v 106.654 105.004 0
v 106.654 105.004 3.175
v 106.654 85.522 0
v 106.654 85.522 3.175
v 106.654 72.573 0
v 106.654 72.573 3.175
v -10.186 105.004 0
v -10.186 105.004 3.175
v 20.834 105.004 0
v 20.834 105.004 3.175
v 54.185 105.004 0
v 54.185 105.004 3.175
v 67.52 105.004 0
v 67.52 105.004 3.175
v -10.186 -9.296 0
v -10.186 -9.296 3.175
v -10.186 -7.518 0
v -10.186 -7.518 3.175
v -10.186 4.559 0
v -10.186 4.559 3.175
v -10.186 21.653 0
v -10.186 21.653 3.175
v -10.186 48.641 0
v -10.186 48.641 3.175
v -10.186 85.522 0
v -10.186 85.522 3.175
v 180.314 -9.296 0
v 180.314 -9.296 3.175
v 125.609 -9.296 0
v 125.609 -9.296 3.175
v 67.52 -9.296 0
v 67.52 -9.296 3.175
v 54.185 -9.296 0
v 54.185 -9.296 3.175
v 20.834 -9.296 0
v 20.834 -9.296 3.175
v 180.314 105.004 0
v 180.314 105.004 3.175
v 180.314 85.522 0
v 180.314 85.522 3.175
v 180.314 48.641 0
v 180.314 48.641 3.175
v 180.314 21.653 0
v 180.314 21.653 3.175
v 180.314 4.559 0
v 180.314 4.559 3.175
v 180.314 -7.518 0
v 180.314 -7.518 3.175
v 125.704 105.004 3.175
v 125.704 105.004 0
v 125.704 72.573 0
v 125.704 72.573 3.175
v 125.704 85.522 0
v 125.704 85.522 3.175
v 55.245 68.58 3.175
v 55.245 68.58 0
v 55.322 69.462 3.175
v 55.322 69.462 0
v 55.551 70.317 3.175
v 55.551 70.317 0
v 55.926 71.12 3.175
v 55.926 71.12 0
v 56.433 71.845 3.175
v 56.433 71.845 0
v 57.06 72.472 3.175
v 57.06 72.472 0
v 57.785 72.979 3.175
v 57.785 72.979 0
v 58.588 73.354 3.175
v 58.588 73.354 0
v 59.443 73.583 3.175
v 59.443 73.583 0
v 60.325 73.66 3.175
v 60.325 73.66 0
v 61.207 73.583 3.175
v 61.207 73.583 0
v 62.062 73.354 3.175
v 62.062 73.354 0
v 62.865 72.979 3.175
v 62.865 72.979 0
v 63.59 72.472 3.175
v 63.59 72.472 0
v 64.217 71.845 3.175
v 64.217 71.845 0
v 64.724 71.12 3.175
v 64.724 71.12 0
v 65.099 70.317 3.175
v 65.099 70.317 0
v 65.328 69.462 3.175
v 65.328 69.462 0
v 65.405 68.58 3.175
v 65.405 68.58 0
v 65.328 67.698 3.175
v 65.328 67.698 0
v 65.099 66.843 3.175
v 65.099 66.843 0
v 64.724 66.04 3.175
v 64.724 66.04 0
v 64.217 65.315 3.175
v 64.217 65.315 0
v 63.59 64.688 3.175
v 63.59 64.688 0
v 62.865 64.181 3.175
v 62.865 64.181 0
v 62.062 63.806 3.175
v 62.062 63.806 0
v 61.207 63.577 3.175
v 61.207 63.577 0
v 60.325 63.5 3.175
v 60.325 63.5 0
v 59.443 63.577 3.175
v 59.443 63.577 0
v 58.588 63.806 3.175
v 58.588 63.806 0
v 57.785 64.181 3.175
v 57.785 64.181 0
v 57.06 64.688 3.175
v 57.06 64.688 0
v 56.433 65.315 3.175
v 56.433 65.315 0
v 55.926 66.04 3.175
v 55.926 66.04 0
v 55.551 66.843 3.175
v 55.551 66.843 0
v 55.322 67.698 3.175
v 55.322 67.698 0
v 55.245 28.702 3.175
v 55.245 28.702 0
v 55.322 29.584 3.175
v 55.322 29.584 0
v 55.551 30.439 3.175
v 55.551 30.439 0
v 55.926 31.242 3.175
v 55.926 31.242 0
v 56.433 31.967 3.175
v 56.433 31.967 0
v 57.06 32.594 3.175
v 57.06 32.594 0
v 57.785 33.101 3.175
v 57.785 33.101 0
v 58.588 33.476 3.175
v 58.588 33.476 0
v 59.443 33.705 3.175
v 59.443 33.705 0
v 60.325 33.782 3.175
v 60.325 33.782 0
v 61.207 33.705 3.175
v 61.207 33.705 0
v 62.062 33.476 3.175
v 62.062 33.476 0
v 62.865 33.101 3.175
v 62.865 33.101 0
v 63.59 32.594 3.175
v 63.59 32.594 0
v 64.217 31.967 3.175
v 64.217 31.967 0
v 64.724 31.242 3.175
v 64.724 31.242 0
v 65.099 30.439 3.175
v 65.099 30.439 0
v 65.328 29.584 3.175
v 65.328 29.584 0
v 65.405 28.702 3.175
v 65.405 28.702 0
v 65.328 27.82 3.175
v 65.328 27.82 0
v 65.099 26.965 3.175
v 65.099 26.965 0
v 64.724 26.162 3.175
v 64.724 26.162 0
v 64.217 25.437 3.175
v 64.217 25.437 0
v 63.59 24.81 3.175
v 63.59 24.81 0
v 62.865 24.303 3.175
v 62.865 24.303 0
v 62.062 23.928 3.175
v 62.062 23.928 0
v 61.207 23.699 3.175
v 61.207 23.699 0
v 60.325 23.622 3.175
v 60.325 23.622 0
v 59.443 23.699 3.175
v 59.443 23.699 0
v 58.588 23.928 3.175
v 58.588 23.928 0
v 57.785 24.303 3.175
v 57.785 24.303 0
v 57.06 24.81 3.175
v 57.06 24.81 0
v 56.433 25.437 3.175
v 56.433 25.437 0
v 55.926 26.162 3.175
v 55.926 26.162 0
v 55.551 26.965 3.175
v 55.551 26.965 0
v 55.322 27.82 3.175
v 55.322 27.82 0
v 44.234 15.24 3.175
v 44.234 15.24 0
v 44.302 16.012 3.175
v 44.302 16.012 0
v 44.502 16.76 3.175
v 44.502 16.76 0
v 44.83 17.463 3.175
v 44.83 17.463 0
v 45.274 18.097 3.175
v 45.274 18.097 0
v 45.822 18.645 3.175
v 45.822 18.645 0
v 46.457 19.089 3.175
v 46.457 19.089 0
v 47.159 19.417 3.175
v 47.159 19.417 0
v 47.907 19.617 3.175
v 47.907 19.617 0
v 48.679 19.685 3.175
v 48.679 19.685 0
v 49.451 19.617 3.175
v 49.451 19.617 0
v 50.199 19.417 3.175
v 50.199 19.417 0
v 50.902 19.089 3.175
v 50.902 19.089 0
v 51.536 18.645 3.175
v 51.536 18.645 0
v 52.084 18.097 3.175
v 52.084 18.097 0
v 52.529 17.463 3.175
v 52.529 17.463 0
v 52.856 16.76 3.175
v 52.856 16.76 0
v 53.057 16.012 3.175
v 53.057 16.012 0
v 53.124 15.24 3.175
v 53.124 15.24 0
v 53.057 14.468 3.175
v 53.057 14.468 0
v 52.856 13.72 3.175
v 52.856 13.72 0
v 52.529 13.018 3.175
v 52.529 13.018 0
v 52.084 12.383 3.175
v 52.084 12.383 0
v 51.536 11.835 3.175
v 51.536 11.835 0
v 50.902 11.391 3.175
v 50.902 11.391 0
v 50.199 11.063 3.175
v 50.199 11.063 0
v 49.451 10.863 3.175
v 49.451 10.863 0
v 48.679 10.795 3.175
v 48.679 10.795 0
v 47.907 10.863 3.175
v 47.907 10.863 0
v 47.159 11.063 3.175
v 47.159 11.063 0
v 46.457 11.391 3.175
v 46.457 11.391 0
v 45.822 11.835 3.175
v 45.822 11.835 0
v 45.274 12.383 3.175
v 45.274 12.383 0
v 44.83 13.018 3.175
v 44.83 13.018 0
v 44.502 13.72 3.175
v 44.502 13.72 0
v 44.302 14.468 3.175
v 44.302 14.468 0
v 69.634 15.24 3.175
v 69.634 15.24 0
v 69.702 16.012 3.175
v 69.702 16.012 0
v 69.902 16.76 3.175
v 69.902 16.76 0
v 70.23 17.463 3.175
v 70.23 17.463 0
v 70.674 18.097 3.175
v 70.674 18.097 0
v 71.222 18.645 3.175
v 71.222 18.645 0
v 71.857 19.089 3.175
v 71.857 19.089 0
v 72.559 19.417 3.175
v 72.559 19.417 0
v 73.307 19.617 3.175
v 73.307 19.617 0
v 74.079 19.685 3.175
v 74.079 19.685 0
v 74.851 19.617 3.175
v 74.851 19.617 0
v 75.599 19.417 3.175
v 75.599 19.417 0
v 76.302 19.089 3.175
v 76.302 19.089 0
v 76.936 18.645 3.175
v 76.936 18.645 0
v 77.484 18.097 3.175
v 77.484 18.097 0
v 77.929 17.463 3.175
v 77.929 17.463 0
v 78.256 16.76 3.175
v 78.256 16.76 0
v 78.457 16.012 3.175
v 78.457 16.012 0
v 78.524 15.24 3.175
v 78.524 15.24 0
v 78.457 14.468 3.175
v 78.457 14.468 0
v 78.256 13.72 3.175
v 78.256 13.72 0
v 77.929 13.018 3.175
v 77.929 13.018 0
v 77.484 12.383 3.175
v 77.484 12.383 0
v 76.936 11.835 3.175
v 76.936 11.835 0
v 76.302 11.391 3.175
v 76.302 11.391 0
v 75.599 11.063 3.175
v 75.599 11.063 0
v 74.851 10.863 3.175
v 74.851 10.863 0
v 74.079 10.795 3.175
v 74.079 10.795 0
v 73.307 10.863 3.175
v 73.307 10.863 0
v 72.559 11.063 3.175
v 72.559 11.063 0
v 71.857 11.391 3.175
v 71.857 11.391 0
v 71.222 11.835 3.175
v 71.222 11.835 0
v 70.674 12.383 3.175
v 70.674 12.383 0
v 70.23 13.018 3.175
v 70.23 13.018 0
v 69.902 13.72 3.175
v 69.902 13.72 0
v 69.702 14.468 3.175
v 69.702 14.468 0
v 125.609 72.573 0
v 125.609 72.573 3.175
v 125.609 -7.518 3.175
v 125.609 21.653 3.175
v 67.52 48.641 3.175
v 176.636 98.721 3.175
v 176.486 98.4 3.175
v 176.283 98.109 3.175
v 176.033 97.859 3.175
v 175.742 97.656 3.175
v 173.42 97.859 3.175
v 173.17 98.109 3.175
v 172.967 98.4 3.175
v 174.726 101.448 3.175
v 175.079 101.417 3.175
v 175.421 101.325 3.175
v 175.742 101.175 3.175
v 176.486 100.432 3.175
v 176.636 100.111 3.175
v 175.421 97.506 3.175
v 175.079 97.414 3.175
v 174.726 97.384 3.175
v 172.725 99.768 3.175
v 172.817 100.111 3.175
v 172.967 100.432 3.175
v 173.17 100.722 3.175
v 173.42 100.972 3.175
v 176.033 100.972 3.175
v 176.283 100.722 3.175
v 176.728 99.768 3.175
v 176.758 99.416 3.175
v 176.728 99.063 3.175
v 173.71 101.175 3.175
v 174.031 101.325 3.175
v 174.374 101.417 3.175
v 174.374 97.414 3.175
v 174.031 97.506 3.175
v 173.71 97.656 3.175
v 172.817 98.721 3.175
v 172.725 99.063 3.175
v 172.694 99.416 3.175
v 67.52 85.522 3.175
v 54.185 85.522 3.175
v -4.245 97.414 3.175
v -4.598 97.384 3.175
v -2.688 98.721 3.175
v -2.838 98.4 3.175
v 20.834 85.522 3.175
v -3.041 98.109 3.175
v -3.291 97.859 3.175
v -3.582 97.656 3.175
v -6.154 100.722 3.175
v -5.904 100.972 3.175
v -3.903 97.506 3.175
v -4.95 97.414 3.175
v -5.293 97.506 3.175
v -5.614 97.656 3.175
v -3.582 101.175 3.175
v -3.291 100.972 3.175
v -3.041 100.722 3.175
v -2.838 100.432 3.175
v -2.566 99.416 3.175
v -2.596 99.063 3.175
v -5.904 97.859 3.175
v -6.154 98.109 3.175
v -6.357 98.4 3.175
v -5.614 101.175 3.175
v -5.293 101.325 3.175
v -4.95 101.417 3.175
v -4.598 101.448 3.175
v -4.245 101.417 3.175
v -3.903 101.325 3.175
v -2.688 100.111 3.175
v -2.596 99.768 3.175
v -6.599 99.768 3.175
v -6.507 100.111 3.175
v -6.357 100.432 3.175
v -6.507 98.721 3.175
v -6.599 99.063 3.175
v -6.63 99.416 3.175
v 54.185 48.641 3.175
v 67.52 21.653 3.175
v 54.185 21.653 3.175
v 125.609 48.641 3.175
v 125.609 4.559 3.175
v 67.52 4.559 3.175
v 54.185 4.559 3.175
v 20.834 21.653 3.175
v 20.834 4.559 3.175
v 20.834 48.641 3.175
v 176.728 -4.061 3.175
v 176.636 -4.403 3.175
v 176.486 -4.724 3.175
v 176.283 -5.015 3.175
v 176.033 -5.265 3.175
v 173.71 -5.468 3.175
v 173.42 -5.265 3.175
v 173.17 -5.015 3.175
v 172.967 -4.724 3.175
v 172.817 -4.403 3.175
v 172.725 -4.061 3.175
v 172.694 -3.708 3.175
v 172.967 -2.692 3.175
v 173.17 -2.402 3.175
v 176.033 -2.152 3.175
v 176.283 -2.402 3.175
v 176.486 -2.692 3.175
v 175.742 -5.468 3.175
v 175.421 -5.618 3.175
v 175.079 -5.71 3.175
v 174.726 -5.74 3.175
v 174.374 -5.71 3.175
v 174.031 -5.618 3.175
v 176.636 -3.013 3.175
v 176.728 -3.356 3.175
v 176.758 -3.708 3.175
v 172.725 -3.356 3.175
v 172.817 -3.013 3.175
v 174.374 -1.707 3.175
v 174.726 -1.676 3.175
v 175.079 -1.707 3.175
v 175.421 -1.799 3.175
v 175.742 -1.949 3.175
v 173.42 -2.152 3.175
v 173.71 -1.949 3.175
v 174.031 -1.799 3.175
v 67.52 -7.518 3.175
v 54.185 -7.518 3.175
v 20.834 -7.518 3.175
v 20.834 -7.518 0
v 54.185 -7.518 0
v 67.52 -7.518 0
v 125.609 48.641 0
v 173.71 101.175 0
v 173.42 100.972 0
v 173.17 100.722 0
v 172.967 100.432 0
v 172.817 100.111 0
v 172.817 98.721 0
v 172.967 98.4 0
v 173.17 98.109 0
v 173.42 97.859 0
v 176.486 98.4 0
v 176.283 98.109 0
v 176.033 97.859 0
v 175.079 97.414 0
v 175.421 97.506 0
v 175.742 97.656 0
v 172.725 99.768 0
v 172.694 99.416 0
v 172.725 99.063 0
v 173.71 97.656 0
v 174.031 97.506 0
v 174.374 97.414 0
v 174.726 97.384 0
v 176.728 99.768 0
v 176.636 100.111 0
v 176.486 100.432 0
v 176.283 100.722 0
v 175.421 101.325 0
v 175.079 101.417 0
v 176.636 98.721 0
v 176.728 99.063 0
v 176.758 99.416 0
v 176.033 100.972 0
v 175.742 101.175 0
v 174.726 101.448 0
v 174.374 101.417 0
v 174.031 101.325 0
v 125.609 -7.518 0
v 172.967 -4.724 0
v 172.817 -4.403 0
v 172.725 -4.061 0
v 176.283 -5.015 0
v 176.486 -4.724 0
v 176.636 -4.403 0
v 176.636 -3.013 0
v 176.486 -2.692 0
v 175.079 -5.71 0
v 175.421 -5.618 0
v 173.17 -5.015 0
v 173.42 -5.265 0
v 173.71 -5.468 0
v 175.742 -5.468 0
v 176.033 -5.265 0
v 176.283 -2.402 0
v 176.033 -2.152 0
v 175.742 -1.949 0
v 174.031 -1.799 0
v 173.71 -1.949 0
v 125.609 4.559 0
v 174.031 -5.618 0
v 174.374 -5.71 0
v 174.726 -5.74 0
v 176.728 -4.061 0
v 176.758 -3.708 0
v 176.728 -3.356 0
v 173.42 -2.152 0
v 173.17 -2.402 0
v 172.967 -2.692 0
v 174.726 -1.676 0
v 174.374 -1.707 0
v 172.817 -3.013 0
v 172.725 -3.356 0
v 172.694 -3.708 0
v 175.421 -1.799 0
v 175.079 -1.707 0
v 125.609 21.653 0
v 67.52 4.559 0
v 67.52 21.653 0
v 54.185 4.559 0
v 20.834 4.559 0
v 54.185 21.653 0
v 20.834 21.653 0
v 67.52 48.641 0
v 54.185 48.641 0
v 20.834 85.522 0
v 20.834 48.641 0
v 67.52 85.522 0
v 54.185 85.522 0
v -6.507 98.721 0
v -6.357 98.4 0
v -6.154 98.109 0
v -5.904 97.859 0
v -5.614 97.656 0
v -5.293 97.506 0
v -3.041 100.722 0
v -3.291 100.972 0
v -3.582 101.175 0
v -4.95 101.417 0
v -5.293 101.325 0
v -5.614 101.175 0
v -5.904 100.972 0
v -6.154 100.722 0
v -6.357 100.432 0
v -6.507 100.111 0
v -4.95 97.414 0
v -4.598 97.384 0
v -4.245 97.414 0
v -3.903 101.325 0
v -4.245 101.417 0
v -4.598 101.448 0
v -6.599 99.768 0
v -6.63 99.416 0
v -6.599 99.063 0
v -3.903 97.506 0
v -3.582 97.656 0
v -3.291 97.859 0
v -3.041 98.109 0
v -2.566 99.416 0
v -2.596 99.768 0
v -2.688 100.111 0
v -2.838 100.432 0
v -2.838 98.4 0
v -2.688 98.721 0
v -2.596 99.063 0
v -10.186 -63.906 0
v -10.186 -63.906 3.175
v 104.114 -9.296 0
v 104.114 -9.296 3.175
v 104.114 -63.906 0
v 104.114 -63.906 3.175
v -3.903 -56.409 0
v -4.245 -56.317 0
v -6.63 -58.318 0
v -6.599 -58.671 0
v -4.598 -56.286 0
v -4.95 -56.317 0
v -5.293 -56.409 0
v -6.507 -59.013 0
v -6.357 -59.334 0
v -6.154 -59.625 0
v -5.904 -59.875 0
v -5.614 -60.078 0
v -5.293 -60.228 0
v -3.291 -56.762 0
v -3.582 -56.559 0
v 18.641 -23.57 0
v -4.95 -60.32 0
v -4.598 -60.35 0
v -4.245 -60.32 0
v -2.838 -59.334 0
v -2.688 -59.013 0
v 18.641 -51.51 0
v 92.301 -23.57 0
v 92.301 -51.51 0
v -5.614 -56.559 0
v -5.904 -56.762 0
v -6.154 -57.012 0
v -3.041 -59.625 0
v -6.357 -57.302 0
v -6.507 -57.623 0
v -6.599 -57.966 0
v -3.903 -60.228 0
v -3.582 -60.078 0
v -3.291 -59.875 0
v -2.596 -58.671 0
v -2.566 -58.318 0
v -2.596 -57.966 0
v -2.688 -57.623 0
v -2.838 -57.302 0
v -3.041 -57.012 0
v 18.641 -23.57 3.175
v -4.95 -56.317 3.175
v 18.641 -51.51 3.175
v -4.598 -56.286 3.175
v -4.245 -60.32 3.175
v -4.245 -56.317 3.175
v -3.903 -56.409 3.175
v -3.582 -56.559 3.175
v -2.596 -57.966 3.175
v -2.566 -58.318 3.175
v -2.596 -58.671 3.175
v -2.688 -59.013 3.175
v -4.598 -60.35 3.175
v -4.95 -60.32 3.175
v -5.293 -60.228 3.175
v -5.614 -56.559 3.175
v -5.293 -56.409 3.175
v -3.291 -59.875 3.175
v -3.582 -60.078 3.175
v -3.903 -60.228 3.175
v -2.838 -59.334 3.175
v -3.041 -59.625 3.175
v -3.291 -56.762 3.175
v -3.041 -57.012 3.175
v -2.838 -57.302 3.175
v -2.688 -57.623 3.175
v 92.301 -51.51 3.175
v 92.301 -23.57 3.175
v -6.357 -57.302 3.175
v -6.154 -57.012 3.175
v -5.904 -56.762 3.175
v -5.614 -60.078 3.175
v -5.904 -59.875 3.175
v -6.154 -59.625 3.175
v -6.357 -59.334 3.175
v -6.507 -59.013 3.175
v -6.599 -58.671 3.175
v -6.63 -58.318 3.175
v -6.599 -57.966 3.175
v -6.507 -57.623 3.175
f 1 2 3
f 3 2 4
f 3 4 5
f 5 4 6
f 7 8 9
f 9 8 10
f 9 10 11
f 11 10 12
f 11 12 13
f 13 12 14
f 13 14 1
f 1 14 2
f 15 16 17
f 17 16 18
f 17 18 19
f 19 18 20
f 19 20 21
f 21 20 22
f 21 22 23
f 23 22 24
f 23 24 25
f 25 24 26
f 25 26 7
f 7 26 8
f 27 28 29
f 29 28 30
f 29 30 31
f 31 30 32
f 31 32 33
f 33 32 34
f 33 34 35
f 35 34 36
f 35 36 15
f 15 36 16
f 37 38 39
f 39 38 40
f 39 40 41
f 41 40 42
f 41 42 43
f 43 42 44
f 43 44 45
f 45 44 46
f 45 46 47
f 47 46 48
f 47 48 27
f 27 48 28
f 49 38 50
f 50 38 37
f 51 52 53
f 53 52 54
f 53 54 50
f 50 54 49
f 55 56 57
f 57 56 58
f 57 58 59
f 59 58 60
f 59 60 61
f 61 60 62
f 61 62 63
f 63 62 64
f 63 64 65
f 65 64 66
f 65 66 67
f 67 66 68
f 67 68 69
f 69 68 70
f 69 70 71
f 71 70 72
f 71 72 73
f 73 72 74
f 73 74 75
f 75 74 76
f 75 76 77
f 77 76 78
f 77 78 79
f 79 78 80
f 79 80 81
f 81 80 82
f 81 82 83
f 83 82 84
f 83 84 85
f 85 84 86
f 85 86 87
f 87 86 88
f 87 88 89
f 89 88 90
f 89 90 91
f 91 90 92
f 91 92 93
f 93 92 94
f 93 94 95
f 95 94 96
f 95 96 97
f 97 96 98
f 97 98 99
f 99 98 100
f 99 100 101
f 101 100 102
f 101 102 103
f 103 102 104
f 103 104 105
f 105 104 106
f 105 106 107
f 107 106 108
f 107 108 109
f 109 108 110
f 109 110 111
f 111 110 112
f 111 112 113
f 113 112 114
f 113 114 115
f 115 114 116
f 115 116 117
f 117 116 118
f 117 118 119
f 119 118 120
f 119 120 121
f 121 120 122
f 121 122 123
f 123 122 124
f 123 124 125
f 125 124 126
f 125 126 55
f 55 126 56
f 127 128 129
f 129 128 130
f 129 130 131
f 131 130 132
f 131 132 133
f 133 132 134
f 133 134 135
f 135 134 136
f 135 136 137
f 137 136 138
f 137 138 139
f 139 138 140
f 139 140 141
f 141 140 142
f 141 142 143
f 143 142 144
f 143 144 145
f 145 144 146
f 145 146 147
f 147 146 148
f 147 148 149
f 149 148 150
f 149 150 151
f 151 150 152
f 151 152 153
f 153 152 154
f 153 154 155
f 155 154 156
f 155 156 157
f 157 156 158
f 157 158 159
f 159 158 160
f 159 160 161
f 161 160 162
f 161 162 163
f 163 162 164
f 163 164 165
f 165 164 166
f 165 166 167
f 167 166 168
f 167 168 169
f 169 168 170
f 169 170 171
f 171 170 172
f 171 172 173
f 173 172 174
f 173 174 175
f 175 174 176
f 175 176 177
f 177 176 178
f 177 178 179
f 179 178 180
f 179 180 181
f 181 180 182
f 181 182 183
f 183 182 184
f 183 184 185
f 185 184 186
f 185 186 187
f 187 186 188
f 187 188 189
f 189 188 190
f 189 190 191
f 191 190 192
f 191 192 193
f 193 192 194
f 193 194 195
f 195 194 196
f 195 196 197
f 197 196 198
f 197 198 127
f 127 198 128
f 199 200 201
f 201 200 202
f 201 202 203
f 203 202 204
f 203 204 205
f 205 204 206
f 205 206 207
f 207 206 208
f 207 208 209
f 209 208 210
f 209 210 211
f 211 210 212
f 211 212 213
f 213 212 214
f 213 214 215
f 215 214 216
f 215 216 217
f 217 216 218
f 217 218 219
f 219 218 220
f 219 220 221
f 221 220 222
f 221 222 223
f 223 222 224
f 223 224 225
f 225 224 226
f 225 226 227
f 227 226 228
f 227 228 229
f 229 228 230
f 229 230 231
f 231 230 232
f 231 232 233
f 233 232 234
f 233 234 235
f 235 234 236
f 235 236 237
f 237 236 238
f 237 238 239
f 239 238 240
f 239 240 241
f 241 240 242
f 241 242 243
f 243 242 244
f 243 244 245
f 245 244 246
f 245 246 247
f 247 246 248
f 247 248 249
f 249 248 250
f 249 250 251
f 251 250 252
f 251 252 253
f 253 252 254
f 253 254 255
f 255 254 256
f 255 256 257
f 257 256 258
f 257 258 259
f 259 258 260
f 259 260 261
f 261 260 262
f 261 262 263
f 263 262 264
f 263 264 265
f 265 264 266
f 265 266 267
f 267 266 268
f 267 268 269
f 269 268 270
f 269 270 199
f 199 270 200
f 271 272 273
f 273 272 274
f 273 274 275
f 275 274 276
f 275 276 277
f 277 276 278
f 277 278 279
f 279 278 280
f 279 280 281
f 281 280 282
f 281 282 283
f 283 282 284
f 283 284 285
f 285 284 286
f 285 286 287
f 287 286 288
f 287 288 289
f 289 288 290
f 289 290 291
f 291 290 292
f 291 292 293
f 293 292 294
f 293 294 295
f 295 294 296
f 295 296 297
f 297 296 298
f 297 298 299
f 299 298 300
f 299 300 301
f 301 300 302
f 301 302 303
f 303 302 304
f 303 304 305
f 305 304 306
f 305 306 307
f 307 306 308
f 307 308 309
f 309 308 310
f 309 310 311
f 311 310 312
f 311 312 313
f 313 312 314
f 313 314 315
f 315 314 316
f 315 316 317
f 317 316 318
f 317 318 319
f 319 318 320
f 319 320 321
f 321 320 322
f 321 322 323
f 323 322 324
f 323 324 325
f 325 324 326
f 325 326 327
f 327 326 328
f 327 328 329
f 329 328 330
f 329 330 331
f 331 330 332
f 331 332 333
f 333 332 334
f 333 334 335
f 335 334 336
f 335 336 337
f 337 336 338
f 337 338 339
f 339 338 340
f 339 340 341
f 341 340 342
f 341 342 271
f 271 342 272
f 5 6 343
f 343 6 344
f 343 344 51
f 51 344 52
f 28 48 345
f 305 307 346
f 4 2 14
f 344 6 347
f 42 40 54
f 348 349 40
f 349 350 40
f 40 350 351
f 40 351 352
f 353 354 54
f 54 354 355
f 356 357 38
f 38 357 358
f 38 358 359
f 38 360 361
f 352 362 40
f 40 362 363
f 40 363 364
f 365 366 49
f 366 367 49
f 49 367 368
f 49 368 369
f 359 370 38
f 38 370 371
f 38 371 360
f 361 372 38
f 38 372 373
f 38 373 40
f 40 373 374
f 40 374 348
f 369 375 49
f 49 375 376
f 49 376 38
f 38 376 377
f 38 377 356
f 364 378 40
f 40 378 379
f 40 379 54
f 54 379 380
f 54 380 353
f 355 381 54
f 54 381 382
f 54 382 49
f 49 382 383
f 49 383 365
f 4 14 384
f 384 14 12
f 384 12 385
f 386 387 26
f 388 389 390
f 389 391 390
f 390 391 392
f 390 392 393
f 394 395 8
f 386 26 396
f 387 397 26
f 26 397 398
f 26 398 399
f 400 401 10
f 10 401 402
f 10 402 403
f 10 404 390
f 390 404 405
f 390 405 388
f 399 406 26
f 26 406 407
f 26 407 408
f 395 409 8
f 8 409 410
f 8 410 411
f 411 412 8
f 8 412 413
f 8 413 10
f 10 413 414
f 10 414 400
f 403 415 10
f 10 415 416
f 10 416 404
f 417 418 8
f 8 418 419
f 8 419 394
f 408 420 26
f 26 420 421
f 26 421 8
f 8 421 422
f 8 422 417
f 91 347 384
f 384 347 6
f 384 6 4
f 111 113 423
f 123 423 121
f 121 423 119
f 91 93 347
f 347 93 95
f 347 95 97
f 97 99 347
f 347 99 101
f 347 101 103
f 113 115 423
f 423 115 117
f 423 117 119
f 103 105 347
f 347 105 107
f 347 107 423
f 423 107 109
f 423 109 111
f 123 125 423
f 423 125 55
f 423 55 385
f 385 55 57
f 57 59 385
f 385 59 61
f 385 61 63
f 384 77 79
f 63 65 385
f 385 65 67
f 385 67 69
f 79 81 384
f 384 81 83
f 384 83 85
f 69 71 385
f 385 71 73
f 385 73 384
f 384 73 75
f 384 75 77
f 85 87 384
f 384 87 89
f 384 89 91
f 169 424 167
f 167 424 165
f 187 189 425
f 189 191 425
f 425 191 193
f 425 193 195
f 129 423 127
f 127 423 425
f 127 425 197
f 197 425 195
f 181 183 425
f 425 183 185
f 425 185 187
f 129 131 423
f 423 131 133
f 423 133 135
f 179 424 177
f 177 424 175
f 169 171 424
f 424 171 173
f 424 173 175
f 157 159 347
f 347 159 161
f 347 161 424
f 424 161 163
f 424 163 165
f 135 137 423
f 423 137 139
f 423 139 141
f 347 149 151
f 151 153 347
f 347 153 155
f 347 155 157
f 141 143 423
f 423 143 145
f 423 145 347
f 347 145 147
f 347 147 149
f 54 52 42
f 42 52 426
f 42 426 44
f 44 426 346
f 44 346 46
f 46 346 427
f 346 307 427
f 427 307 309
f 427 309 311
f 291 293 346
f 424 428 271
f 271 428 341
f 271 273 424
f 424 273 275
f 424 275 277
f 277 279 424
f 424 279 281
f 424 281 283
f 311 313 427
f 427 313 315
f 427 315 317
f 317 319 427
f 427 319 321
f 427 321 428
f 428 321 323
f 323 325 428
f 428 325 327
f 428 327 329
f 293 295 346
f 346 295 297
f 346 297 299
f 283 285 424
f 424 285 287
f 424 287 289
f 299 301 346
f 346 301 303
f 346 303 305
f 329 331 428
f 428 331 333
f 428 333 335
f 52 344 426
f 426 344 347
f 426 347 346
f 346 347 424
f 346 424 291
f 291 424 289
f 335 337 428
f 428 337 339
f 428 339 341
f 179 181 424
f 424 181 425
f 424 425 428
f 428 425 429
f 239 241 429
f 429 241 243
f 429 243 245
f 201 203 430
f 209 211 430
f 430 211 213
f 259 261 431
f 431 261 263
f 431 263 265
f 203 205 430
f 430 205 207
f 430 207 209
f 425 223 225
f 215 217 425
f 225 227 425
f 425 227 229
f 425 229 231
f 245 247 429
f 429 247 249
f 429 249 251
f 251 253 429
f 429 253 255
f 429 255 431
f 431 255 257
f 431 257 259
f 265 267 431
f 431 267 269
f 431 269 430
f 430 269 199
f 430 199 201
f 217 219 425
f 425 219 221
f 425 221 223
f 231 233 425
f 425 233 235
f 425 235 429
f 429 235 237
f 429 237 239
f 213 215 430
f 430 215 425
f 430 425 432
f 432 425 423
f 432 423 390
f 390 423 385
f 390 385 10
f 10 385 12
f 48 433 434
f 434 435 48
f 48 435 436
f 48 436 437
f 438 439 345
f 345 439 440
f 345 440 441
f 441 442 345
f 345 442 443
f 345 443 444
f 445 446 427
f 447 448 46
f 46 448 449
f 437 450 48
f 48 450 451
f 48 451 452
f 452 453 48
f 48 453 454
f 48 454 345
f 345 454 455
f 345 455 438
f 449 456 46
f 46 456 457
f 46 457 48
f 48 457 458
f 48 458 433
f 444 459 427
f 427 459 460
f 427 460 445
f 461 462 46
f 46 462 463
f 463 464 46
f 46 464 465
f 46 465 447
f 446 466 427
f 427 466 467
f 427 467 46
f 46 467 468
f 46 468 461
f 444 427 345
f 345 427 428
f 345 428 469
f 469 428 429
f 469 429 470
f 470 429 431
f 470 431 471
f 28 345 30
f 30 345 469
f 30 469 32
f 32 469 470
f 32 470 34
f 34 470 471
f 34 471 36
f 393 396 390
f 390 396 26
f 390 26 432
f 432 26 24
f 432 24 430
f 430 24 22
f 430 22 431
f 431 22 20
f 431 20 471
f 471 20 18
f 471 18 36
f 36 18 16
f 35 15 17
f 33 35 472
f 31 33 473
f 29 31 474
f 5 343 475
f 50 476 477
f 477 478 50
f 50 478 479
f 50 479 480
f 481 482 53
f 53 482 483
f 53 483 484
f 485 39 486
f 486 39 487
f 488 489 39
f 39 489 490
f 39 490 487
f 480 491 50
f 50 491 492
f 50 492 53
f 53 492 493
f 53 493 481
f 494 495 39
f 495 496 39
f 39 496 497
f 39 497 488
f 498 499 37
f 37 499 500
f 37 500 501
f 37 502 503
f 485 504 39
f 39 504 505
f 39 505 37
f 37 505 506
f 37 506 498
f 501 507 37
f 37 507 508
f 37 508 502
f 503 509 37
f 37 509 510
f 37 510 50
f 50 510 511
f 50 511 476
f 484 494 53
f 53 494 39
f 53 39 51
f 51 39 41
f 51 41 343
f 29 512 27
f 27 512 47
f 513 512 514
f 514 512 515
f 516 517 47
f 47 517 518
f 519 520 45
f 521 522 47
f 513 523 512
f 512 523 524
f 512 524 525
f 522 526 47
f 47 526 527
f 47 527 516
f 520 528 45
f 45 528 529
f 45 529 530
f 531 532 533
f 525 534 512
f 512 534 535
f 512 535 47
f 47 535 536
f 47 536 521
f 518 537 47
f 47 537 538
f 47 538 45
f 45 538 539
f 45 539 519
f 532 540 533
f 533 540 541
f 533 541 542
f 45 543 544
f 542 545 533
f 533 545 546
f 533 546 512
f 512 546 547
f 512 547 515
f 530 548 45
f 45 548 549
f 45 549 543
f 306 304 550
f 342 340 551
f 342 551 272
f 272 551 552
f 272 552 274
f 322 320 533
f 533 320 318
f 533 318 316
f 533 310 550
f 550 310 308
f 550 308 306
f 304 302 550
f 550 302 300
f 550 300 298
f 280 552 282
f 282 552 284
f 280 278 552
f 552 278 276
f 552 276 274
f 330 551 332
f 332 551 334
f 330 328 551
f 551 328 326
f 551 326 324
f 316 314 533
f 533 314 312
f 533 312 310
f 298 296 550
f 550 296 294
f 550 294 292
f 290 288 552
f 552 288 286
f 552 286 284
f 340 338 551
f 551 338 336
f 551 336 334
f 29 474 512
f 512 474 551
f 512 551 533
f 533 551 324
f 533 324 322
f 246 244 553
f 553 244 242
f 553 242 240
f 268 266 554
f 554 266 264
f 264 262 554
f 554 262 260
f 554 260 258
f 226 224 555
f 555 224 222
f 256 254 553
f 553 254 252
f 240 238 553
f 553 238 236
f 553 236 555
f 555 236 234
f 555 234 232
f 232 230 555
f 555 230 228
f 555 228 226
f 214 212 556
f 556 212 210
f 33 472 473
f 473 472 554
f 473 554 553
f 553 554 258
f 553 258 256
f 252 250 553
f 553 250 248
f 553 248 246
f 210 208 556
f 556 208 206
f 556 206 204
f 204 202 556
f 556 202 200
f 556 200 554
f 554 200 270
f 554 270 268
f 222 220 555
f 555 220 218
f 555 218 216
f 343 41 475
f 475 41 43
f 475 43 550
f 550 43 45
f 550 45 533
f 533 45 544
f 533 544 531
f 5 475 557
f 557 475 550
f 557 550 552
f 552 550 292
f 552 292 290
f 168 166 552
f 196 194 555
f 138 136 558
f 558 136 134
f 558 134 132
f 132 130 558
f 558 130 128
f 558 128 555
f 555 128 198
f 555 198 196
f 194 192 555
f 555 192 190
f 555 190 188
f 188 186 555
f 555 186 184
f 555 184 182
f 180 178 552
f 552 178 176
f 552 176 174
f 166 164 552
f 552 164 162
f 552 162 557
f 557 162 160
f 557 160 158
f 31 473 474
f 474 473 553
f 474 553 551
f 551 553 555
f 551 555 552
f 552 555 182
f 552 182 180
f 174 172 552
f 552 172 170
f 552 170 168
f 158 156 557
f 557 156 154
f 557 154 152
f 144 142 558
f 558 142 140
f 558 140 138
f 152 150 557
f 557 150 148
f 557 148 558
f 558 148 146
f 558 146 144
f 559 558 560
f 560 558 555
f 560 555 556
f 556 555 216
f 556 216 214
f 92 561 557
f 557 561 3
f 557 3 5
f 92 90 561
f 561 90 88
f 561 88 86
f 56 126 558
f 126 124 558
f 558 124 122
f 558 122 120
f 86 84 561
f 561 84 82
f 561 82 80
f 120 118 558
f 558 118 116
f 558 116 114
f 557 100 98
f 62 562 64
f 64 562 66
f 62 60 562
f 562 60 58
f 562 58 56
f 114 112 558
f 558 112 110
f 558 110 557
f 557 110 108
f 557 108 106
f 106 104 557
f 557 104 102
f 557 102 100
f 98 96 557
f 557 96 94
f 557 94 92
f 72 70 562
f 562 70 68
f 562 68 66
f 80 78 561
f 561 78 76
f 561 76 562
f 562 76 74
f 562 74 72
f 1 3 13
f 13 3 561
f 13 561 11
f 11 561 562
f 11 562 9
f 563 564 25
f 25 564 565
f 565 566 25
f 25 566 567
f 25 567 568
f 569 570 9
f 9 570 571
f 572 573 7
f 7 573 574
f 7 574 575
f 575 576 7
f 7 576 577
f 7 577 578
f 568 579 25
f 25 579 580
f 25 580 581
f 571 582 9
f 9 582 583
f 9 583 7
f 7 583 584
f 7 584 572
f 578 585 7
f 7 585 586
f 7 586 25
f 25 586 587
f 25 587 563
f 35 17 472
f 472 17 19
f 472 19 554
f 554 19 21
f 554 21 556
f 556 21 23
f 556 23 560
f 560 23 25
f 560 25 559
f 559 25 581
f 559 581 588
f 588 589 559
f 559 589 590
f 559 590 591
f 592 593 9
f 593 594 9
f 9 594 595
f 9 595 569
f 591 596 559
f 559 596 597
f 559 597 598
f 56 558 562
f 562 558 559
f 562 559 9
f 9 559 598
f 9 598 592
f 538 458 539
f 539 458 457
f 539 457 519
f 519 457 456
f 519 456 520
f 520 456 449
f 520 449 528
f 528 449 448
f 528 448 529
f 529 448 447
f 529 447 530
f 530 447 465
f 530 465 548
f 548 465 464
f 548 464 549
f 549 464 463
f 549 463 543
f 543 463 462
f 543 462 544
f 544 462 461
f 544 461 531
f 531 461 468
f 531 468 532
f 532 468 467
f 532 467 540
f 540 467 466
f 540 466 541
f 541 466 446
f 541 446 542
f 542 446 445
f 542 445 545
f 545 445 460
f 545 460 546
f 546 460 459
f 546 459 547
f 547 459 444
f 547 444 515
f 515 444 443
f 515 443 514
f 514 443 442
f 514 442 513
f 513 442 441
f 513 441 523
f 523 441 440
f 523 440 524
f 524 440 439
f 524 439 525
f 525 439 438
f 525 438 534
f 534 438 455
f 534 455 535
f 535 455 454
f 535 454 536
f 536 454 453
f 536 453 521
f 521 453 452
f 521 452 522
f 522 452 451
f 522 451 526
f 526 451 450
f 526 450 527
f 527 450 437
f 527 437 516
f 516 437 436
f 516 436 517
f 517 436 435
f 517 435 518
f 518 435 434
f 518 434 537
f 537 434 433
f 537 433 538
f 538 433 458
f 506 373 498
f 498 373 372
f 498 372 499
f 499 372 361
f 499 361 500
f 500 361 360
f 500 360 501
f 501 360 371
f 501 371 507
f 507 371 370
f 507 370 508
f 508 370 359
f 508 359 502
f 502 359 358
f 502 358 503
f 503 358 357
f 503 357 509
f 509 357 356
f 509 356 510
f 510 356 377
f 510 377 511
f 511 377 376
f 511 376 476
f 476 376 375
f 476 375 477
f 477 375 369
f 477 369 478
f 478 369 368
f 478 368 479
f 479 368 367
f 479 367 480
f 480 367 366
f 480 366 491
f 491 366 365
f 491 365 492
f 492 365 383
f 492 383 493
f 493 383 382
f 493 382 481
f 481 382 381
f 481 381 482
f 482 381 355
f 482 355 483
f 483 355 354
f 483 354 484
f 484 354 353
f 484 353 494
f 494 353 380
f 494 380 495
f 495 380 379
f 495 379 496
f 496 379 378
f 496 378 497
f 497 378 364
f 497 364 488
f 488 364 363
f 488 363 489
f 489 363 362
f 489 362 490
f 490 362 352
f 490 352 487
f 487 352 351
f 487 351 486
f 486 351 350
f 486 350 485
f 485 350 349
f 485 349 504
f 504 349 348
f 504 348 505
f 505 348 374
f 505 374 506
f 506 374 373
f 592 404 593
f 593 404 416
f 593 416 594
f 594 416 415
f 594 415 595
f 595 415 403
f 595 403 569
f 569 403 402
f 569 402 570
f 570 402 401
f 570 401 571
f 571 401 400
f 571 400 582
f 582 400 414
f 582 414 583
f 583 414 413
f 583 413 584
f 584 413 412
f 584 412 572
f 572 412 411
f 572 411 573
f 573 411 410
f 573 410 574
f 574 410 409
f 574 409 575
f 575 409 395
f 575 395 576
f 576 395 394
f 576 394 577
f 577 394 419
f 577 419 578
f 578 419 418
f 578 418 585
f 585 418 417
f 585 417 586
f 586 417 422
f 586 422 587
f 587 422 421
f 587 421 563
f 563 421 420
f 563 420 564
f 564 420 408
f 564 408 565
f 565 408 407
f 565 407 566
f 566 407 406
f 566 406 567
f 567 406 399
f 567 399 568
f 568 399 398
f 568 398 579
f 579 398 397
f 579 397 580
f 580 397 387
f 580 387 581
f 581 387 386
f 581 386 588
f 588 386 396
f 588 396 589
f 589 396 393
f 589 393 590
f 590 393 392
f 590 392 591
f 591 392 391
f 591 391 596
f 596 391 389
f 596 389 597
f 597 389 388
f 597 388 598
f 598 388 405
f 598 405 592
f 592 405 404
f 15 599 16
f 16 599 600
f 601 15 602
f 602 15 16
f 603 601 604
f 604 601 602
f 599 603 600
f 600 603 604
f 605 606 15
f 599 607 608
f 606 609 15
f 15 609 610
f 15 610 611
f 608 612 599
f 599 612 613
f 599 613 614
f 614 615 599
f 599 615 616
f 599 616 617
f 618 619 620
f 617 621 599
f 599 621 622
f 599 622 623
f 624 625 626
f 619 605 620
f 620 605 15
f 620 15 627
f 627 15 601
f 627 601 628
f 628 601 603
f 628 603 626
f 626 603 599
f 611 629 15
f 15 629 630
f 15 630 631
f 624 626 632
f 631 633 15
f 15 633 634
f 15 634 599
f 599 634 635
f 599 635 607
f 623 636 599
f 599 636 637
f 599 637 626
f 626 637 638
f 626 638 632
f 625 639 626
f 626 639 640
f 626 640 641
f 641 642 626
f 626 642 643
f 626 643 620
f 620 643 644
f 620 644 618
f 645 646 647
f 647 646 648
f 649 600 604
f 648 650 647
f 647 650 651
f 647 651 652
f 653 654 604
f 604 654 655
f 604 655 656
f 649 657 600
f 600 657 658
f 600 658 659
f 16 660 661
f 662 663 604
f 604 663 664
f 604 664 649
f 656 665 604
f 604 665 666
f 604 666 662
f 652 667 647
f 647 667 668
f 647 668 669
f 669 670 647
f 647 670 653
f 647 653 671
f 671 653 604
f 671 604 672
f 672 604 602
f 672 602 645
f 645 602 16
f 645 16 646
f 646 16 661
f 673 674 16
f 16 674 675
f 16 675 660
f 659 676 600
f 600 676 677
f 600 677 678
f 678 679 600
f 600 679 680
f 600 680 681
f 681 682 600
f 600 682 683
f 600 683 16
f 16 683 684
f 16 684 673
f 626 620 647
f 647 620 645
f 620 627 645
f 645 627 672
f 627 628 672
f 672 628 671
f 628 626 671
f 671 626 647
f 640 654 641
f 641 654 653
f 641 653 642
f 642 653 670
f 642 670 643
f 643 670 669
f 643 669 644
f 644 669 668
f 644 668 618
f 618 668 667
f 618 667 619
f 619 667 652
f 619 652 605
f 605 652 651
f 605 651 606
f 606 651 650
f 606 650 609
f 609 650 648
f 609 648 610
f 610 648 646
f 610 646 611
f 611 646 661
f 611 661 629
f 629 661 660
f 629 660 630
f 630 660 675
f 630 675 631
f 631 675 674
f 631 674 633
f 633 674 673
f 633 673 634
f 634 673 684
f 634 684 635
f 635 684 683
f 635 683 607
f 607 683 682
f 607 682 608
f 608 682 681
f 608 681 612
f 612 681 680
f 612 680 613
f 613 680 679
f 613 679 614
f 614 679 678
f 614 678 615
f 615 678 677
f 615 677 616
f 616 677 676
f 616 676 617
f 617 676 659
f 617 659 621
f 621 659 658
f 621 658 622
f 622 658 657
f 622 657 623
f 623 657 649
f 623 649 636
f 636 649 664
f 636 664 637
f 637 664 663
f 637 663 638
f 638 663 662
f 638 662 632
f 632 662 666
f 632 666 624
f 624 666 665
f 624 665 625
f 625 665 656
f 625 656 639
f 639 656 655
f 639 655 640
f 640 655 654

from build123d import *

# Parameters (mm, degrees)
SKETCH2_R           = 4.445
SKETCH2_R_2         = 5.08
BOSS_EXTRUDE1_DEPTH = 3.175
SKETCH3_W           = 114.3
SKETCH3_H           = 54.61
BOSS_EXTRUDE2_DEPTH = 3.175
SKETCH4_W           = 73.66
SKETCH4_H           = 27.94
CUT_EXTRUDE1_DEPTH  = 3.175
SKETCH6_R           = 2.032
CUT_EXTRUDE2_DEPTH  = 4.175


with BuildPart() as part:
    # Sketch2 → Boss-Extrude1 (new body)
    with BuildSketch(Plane.XY):
        Polygon((106.654477728, 105.0036), (-10.185522272, 105.0036), (-10.185522272, -9.2964), (180.314477728, -9.2964), (180.314477728, 105.0036), (125.704477728, 105.0036), (125.704477728, 72.572919742), (106.654477728, 72.572919742), align=None)
        with Locations((48.6791, 15.24)):
            Circle(SKETCH2_R, mode=Mode.SUBTRACT)
        with Locations((74.0791, 15.24)):
            Circle(SKETCH2_R, mode=Mode.SUBTRACT)
        with Locations((60.325, 28.702)):
            Circle(SKETCH2_R_2, mode=Mode.SUBTRACT)
        with Locations((60.325, 68.58)):
            Circle(SKETCH2_R_2, mode=Mode.SUBTRACT)
    extrude(amount=BOSS_EXTRUDE1_DEPTH)


with BuildPart() as body_2:
    # Sketch3 → Boss-Extrude2 (new body)
    with BuildSketch(Plane.XY.offset(3.175)):
        with Locations((46.964477728, -36.6014)):
            Rectangle(SKETCH3_W, SKETCH3_H)
    extrude(amount=-BOSS_EXTRUDE2_DEPTH)

    # Sketch4 → Cut-Extrude1 (cut)
    with BuildSketch(Plane.XY.offset(3.175)):
        with Locations((55.471174167, -37.539907166)):
            Rectangle(SKETCH4_W, SKETCH4_H)
    extrude(amount=-CUT_EXTRUDE1_DEPTH, mode=Mode.SUBTRACT)


with BuildPart() as cut_extrude2_tool:
    # Sketch6 → Cut-Extrude2 (new body, through all)
    with BuildSketch(Plane.XY.offset(3.175)):
        with Locations((-4.597522272, 99.4156)):
            Circle(SKETCH6_R)
        with Locations((174.726477728, 99.4156)):
            Circle(SKETCH6_R)
        with Locations((174.726477728, -3.7084)):
            Circle(SKETCH6_R)
        with Locations((-4.597522272, -58.3184)):
            Circle(SKETCH6_R)
    extrude(amount=-CUT_EXTRUDE2_DEPTH)


with BuildPart() as part_1:
    add(part.part)

    # Cut-Extrude2: cut by cut_extrude2_tool
    add(cut_extrude2_tool.part, mode=Mode.SUBTRACT)


with BuildPart() as body_2_1:
    add(body_2.part)

    # Cut-Extrude2: cut by cut_extrude2_tool
    add(cut_extrude2_tool.part, mode=Mode.SUBTRACT)


solid = Compound([part_1.part, body_2_1.part])
